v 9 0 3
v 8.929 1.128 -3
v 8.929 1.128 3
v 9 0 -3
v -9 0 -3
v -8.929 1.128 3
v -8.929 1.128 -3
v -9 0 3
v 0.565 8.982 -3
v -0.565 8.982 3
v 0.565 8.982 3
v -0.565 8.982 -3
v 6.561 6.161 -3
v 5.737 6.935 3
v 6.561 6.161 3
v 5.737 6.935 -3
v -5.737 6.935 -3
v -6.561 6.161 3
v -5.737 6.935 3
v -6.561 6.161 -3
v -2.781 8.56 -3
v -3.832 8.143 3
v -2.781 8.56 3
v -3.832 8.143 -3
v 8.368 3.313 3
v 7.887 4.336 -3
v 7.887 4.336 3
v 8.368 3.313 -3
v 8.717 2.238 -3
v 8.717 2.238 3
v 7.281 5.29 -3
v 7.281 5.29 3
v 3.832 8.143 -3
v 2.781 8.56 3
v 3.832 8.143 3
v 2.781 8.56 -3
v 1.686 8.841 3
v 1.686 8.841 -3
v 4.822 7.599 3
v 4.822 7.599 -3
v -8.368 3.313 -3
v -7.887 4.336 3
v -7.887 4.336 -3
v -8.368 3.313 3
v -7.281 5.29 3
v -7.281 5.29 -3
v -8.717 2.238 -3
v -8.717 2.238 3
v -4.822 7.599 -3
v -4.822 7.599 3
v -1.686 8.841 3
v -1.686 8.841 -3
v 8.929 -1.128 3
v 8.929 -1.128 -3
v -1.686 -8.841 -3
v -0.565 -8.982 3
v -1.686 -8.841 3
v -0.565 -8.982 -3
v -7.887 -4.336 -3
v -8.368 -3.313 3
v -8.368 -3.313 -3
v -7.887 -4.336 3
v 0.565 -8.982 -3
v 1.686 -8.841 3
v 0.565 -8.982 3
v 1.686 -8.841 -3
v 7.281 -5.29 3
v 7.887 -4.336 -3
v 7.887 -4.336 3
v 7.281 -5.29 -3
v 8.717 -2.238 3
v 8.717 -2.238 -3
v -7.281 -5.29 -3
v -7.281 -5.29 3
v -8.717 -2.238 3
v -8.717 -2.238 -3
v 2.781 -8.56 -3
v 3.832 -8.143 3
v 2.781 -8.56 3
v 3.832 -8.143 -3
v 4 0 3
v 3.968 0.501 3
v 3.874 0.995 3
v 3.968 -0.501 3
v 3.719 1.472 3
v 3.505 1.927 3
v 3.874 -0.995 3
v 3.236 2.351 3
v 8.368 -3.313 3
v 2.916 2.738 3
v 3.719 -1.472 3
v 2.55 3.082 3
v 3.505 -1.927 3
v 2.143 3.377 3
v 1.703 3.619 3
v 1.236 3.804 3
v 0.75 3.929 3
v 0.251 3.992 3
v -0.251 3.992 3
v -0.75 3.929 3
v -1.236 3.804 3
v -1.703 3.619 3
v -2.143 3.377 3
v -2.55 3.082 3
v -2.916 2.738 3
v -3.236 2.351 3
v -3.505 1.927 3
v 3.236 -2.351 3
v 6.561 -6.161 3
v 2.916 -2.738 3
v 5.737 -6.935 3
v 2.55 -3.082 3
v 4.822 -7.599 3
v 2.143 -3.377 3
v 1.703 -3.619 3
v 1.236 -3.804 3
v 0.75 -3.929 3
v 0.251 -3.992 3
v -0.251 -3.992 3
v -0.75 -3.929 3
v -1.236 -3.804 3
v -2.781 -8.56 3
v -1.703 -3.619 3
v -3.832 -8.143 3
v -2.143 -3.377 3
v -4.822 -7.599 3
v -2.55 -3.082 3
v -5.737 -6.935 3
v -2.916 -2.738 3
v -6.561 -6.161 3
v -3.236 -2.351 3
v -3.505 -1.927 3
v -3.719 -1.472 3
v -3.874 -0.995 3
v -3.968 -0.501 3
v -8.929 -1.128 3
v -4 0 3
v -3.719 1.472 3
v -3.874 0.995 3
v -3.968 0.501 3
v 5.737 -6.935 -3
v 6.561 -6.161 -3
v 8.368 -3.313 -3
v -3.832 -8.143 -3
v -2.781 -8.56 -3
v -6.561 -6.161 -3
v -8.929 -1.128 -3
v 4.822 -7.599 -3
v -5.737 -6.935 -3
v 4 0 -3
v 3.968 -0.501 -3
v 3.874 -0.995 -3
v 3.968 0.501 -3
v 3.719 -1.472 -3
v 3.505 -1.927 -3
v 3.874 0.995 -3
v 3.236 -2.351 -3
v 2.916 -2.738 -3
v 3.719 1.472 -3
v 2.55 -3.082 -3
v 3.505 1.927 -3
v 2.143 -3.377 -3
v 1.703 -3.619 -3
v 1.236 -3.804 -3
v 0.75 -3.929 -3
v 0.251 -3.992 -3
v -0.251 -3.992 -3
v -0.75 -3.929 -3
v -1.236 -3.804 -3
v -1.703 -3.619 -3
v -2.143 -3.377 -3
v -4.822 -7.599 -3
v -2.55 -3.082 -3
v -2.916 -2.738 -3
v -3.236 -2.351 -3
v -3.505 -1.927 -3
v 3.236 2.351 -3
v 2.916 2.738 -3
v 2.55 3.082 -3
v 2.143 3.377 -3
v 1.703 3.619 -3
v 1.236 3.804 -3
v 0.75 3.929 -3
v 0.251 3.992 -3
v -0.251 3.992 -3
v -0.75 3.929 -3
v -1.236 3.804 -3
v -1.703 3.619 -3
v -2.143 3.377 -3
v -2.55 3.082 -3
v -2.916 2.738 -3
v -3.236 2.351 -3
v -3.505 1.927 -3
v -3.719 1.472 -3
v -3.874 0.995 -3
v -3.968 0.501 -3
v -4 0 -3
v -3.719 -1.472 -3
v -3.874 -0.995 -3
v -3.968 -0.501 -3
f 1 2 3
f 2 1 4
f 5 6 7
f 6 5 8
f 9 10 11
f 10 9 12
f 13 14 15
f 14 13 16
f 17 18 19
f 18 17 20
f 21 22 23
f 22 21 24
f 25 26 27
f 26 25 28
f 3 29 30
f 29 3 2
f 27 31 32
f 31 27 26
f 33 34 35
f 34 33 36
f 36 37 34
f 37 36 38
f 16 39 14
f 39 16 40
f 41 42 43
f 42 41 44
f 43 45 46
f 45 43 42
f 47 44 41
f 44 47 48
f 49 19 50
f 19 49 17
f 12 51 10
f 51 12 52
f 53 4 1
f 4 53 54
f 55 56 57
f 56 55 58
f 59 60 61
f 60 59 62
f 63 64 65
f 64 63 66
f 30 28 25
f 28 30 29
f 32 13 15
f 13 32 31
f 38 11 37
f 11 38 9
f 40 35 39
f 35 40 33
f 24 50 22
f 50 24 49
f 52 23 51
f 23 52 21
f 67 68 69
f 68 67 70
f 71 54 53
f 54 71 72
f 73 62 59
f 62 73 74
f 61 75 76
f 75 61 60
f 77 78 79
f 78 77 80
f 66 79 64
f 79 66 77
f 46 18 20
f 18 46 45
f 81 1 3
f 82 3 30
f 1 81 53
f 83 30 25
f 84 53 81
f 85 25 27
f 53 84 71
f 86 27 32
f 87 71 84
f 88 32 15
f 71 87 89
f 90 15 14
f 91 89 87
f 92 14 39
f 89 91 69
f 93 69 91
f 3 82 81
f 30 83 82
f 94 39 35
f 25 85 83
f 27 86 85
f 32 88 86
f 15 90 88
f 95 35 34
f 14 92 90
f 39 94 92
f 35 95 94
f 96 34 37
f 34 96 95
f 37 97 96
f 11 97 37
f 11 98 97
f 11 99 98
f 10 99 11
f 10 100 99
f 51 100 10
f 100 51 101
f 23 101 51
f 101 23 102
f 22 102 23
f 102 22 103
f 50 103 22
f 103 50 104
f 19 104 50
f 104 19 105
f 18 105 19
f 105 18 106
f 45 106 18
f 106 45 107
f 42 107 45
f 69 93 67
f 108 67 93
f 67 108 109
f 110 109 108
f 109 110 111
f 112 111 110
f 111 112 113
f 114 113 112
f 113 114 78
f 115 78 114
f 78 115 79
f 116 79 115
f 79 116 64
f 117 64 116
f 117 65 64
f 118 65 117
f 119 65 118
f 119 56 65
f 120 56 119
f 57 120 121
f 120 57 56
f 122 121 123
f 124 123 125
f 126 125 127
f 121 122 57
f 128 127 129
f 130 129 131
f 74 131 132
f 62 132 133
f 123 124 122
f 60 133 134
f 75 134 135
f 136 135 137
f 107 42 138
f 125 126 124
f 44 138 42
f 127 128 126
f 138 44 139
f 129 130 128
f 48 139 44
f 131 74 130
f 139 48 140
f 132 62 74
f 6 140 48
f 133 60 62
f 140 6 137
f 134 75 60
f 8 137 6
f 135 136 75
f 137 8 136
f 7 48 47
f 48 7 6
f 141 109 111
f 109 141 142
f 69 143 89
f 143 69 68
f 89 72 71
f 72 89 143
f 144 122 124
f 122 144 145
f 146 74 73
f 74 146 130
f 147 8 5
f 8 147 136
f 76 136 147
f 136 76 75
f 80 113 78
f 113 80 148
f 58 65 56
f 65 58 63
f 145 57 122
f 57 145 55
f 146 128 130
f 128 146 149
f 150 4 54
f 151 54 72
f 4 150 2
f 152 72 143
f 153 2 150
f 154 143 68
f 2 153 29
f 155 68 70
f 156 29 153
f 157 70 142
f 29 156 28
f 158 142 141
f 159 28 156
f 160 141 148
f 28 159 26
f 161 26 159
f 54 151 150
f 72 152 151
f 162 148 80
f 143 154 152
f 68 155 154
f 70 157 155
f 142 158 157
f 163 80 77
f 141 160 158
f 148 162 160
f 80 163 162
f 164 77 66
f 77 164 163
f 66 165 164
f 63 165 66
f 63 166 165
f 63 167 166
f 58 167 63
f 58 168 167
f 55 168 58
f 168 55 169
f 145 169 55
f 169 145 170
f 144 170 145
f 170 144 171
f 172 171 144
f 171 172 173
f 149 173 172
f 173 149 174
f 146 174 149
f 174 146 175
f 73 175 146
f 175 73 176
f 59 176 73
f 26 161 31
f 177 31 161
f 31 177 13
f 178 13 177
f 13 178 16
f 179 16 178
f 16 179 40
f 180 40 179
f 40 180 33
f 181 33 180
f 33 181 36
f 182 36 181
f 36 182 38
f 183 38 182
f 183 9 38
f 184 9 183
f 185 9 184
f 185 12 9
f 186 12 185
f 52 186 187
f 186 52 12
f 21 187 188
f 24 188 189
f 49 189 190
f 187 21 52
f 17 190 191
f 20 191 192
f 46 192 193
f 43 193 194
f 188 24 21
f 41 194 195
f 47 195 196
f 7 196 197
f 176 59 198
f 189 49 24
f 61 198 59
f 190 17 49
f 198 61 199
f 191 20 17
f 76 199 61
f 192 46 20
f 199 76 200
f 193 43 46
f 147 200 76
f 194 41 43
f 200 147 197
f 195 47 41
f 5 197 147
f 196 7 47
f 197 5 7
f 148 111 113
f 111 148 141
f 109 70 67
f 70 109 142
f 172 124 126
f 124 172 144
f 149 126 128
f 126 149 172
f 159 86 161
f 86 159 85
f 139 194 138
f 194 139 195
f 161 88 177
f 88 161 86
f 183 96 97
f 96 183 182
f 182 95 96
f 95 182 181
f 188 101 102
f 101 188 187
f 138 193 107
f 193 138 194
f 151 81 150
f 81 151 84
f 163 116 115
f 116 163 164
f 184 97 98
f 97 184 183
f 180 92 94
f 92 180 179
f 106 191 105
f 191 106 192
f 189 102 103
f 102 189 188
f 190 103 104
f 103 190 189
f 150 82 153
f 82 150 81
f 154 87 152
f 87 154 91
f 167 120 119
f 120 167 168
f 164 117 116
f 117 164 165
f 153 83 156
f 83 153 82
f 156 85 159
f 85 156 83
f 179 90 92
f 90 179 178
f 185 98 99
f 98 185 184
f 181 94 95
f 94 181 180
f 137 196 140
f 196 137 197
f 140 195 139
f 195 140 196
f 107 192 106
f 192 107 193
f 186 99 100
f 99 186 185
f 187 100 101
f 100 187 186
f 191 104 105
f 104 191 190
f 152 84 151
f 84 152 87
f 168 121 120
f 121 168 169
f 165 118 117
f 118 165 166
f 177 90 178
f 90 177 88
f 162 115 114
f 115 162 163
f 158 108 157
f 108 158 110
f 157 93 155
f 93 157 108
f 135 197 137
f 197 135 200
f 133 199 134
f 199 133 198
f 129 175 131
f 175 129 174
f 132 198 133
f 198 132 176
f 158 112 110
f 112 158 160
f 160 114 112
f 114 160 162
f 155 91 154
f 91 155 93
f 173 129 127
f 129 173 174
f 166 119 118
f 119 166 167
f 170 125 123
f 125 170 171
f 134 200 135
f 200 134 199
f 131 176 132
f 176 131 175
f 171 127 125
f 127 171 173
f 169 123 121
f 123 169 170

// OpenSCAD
$fn = 50;


difference() {
	union() {
		translate(v = [0, 0, -3.0000000000]) {
			cylinder(h = 6, r = 9.0000000000);
		}
	}
	union() {
		translate(v = [0, 0, -100.0000000000]) {
			cylinder(h = 200, r = 4.0000000000);
		}
	}
}
